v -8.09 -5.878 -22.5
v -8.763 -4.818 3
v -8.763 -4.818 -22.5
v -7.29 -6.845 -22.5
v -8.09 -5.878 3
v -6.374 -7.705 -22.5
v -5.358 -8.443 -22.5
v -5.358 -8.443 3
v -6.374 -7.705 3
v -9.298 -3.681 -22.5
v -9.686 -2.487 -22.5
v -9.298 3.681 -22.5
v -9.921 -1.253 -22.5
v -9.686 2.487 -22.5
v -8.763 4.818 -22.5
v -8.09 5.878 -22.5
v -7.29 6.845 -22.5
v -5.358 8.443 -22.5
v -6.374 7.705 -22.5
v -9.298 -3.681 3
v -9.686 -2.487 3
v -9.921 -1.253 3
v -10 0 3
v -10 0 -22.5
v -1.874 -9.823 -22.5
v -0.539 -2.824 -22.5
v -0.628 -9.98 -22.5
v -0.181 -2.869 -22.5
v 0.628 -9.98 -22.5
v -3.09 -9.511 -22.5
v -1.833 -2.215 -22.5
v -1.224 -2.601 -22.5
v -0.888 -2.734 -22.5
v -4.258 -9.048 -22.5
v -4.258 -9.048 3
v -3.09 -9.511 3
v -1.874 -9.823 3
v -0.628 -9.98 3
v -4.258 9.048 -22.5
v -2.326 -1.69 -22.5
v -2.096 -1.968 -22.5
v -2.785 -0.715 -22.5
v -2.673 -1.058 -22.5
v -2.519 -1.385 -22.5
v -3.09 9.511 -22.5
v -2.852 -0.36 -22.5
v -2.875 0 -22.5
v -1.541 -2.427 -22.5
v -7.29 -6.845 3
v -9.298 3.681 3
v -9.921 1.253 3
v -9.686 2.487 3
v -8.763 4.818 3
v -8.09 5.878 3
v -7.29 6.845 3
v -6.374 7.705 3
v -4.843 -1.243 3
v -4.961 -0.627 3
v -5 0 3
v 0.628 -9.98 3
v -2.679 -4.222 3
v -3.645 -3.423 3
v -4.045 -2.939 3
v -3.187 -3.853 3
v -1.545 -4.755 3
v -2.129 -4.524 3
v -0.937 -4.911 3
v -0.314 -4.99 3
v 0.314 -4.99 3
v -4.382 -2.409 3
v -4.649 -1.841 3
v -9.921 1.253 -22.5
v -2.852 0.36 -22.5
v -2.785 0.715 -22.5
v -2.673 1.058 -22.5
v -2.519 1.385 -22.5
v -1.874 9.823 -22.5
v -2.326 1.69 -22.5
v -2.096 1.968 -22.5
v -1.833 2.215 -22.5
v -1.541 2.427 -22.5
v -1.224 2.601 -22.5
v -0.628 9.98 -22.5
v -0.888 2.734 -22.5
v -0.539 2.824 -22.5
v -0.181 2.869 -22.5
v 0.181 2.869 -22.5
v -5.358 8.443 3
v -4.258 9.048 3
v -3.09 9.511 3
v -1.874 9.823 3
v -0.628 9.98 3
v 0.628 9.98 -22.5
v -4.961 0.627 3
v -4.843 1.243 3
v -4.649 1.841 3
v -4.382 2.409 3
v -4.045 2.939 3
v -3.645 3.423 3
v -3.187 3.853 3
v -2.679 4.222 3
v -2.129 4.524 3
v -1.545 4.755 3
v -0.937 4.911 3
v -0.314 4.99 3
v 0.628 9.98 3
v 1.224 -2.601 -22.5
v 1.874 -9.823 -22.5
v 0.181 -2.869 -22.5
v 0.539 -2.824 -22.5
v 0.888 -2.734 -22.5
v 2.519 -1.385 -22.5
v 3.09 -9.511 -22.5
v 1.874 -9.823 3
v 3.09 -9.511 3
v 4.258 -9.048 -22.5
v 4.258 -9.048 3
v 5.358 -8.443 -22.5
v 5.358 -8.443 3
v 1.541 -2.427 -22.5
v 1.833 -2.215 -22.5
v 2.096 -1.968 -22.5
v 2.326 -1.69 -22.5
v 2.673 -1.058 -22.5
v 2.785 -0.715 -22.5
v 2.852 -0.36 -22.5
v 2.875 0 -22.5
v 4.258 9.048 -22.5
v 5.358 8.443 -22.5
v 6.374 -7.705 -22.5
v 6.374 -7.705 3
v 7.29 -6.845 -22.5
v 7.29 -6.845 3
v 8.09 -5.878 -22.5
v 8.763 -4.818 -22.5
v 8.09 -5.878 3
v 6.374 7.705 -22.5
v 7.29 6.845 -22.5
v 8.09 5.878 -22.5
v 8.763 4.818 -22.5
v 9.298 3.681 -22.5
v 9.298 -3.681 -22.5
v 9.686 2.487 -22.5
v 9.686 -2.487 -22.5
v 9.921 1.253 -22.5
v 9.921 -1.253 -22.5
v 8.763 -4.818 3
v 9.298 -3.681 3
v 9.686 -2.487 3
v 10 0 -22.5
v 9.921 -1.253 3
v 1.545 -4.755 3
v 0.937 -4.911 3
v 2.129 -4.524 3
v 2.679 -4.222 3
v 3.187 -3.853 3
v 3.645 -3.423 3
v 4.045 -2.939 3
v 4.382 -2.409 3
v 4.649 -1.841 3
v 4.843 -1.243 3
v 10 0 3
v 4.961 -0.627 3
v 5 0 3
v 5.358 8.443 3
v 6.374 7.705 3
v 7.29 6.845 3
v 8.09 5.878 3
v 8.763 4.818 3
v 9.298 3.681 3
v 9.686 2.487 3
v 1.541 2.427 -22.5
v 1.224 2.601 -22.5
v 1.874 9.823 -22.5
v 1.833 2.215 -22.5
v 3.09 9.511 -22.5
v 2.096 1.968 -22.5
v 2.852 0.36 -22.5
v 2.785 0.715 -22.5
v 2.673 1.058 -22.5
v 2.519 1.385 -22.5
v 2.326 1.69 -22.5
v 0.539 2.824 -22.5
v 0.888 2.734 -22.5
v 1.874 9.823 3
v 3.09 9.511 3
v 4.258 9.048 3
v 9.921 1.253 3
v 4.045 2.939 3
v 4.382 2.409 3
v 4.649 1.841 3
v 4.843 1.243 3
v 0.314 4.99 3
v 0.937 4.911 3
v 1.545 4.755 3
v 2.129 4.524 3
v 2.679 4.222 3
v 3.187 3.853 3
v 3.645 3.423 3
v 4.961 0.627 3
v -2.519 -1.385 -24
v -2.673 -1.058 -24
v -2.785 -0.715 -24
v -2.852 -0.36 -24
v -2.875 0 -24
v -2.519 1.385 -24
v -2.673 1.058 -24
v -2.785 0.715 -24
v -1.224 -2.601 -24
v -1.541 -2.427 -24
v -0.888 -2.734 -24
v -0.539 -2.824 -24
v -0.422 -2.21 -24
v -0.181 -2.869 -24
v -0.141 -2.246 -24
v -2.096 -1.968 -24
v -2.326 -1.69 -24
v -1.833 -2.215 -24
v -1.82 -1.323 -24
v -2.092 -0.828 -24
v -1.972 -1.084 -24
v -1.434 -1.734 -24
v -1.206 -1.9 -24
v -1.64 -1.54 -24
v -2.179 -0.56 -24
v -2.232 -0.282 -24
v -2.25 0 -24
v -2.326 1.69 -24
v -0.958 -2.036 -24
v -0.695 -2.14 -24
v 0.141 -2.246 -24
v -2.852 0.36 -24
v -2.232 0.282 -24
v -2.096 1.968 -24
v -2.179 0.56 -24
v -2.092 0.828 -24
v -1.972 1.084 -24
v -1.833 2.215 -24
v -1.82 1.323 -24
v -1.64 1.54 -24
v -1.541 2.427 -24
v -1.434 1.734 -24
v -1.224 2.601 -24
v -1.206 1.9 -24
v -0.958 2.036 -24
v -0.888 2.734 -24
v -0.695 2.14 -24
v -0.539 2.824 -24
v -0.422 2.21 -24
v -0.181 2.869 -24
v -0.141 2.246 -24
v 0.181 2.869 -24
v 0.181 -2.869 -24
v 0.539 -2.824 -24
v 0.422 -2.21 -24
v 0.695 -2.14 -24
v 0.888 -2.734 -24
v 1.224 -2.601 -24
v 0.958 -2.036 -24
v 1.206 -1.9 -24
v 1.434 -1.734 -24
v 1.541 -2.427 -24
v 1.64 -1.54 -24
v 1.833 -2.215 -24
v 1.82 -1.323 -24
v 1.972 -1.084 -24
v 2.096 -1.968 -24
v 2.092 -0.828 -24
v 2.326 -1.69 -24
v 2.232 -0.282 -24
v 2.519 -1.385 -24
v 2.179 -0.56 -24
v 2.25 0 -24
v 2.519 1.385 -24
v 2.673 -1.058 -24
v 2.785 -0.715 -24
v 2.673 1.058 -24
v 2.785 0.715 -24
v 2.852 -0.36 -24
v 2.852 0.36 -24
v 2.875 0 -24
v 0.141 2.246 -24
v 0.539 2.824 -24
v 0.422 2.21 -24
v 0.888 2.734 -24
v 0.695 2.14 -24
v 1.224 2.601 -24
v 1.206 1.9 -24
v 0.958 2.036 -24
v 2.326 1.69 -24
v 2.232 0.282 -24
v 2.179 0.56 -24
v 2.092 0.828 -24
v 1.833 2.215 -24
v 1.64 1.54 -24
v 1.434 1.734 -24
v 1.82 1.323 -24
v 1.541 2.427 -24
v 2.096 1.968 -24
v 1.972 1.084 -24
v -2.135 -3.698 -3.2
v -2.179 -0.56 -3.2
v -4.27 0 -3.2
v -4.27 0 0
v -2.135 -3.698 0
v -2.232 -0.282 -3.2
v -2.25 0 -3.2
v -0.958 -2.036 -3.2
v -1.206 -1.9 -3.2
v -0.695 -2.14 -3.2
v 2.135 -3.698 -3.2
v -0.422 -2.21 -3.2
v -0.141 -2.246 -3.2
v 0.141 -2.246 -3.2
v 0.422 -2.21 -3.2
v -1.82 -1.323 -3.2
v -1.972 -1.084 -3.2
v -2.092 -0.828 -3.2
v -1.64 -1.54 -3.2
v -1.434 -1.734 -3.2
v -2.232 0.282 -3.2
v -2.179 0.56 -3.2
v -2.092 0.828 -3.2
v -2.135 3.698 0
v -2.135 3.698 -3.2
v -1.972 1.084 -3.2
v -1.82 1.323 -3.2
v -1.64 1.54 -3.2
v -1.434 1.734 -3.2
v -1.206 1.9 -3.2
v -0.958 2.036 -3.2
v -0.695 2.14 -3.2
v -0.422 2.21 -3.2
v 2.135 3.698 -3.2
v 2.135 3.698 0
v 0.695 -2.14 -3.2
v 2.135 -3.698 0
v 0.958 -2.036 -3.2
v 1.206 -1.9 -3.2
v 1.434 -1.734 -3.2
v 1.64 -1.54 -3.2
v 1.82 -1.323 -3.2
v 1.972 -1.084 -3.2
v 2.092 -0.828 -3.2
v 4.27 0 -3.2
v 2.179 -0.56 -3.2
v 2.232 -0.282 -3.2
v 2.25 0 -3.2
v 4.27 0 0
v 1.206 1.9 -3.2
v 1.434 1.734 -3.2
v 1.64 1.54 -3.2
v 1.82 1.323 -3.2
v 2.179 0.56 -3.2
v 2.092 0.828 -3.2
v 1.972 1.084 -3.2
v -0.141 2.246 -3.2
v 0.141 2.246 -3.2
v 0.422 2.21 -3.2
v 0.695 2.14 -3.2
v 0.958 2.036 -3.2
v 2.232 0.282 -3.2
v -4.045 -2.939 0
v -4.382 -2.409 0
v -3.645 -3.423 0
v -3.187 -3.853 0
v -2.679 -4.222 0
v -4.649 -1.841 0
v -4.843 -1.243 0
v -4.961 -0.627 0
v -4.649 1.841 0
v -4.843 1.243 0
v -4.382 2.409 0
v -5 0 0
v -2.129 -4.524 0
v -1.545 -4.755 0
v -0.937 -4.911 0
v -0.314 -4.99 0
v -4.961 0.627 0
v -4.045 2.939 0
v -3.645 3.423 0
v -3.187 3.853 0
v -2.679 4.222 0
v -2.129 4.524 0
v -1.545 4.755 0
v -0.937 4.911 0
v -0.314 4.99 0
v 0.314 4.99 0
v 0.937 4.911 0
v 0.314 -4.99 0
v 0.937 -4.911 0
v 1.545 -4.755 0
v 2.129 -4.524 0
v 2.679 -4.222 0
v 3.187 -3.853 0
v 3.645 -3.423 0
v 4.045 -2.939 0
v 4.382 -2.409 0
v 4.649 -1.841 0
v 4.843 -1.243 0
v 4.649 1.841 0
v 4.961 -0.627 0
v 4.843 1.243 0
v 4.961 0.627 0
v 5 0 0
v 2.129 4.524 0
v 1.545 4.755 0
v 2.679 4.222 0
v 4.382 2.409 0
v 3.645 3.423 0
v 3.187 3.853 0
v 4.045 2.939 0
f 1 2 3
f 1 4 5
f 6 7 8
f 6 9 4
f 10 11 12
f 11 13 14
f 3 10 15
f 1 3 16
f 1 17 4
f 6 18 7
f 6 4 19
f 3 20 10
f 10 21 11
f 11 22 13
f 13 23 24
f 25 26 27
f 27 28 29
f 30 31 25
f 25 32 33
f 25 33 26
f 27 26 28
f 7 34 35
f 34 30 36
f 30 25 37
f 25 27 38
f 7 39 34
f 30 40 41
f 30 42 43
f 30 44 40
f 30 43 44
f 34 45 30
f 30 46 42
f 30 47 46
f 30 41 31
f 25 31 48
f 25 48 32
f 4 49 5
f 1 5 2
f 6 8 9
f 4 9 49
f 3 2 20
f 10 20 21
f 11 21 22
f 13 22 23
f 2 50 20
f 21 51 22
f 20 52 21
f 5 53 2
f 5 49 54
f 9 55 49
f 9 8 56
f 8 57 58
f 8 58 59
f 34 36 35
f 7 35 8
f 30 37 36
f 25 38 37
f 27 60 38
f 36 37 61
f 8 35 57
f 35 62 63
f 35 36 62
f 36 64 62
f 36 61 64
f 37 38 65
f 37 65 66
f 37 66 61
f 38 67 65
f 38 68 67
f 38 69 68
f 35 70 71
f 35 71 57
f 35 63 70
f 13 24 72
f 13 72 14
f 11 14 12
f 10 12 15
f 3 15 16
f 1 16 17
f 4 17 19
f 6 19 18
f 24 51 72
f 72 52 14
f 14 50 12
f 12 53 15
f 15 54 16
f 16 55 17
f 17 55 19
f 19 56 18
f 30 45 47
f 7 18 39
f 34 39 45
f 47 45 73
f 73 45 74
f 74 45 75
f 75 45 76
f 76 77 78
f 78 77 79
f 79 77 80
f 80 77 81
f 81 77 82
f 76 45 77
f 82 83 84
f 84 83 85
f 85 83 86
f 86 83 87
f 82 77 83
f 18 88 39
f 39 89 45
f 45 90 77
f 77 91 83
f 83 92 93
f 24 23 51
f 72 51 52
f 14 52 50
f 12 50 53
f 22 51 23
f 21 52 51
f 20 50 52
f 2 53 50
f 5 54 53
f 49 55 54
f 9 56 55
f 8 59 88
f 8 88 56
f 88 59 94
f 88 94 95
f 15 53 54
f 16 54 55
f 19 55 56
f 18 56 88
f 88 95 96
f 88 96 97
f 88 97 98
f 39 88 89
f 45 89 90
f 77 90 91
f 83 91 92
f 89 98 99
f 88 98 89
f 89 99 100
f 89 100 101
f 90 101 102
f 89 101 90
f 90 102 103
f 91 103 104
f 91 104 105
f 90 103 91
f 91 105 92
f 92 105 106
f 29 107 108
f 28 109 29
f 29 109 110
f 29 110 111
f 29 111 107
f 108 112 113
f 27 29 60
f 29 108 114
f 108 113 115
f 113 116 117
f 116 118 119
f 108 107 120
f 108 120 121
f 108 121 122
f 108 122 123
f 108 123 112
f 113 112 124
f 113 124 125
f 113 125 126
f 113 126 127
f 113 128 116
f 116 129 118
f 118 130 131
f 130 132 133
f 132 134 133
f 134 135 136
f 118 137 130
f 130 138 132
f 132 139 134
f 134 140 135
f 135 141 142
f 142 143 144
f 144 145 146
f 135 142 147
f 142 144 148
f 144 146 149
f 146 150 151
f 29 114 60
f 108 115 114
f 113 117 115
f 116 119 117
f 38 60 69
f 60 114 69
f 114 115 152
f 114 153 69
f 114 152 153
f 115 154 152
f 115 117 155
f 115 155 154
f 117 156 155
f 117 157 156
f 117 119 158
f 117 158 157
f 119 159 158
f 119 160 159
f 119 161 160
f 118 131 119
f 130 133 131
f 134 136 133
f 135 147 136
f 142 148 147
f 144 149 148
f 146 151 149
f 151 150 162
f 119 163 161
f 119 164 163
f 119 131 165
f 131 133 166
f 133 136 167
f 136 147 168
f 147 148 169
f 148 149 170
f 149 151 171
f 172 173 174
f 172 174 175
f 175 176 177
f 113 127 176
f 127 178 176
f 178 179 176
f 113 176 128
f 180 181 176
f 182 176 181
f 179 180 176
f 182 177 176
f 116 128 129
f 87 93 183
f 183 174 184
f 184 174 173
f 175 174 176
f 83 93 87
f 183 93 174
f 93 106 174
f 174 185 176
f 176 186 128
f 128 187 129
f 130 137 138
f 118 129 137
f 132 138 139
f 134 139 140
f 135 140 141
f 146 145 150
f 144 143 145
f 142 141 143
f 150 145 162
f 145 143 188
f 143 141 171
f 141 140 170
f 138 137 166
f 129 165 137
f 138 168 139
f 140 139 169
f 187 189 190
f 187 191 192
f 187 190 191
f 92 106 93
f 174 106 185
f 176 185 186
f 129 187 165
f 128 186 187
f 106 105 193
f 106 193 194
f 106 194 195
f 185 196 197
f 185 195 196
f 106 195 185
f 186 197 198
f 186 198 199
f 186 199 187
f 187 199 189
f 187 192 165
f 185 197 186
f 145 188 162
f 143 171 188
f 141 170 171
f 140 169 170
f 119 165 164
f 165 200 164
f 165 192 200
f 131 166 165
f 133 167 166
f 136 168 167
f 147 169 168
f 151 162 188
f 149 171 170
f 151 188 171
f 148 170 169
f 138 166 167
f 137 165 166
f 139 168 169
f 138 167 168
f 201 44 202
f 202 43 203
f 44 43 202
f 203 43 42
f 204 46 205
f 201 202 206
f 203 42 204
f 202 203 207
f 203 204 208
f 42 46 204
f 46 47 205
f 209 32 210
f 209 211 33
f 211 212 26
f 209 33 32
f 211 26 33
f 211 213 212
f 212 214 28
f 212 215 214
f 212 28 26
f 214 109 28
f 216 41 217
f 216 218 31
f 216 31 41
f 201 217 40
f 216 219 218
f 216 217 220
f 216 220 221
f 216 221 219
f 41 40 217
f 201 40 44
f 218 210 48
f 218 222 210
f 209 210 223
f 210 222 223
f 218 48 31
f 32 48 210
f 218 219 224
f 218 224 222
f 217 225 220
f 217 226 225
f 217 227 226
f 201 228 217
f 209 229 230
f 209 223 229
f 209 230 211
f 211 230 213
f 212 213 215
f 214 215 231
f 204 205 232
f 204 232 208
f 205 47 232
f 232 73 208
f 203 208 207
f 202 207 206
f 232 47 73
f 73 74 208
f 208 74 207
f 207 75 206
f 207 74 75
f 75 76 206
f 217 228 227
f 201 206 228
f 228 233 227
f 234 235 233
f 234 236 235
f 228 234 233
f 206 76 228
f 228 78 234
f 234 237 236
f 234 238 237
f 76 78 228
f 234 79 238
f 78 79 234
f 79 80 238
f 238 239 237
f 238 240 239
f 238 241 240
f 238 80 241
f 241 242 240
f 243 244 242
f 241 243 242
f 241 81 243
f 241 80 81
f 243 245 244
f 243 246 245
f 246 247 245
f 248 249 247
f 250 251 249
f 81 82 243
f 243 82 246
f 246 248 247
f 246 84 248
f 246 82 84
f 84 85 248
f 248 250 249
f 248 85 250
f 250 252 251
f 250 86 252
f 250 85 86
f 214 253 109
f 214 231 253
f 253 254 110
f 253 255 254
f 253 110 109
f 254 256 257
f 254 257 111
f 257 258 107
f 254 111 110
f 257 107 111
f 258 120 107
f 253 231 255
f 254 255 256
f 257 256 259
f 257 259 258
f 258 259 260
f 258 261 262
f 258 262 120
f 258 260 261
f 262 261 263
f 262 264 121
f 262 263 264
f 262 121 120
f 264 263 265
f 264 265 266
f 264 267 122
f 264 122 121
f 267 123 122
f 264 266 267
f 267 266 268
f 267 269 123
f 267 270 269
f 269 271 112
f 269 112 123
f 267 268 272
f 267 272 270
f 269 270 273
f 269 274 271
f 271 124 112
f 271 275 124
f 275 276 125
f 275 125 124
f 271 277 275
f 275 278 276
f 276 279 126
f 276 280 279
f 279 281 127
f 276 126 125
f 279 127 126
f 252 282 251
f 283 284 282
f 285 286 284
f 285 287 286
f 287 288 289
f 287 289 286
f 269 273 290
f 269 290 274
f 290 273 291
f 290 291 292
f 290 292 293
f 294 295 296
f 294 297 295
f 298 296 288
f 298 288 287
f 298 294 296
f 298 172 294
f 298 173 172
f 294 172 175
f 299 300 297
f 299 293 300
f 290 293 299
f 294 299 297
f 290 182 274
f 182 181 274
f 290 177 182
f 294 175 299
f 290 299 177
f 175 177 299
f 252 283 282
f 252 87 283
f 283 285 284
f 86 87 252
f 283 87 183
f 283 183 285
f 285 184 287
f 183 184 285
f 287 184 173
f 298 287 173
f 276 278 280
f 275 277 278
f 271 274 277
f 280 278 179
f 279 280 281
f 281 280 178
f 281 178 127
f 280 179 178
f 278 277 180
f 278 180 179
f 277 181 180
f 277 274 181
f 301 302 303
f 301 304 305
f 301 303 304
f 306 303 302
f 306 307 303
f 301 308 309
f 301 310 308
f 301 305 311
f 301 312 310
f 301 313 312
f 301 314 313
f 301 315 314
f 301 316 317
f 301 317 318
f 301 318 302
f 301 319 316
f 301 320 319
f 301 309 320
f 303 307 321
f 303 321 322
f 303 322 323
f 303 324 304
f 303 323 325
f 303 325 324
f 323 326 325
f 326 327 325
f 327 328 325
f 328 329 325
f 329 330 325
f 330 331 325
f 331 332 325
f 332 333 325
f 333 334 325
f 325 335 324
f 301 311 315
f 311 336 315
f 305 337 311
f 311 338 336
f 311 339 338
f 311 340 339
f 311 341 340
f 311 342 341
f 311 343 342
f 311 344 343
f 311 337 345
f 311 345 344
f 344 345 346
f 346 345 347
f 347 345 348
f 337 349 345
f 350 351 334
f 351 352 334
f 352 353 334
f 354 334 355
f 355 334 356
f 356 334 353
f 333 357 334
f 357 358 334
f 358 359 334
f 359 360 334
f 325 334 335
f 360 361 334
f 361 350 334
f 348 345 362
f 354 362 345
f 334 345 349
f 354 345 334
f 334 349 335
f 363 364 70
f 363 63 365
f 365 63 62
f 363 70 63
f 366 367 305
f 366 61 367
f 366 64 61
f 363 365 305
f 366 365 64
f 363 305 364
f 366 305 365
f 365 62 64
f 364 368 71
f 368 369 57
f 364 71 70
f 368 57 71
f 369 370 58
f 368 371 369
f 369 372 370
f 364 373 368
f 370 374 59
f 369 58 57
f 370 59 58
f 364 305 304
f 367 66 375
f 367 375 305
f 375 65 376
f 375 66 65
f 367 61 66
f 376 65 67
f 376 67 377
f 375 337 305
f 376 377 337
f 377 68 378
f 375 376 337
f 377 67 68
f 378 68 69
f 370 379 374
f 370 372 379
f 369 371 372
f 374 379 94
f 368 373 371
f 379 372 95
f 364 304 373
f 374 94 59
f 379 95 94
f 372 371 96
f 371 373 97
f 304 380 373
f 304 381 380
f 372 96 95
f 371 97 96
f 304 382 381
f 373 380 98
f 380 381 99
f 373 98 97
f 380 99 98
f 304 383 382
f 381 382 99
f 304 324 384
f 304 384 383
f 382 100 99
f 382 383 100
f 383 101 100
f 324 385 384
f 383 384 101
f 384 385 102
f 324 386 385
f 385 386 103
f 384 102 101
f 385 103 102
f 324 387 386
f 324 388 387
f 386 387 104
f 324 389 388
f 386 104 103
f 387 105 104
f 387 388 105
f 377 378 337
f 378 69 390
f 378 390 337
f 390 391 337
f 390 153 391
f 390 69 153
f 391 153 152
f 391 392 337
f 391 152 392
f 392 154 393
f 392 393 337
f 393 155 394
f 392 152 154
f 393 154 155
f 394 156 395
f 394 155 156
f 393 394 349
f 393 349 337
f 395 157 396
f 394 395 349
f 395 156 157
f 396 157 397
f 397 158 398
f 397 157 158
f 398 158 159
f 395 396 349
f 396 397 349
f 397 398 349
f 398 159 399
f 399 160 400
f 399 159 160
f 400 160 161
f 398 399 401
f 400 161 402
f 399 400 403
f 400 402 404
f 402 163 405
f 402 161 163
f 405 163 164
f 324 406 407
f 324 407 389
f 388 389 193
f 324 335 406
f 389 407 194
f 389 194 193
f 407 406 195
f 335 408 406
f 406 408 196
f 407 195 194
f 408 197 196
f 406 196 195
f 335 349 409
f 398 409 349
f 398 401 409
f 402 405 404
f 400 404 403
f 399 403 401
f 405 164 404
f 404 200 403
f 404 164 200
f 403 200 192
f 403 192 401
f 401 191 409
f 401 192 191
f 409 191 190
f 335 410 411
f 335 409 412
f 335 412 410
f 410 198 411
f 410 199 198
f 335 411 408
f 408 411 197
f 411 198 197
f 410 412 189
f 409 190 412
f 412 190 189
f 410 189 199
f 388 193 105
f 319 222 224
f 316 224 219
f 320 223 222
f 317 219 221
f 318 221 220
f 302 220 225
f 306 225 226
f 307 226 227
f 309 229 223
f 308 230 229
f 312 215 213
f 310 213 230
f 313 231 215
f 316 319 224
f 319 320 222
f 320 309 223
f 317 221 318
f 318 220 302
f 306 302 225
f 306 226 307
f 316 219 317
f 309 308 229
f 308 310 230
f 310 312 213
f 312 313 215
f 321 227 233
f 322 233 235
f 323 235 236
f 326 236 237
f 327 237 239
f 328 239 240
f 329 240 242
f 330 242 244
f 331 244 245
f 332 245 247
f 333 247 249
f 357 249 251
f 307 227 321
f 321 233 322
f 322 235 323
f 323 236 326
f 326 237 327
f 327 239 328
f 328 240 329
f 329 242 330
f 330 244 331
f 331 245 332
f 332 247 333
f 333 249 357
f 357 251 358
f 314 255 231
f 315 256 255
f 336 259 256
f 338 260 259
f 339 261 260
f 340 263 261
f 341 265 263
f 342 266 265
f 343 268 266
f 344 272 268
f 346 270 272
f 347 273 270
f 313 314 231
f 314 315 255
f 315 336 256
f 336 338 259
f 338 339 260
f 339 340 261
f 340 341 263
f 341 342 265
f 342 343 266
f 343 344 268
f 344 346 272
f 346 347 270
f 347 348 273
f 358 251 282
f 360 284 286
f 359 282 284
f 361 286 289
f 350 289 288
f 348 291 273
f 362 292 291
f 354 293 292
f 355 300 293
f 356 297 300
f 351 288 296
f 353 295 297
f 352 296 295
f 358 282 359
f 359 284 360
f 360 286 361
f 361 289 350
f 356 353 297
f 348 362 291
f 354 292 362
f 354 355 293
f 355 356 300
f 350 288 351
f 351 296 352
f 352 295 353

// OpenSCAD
$fn = 50;

difference() {
	union() {
		translate(v = [0, 0, -22.5]) {
			cylinder(h = 25.5, r = 10.0);
		}
		#translate(v = [0, 0, -24.0]) {
			cylinder(h = 24, r = 2.875);
		}
	}
	union() {
		translate(v = [0, 0, 0]) {
			rotate(a = [0, 0, 0]) {
				difference() {
					union() {
						translate(v = [0, 0, -3.2]) {
							linear_extrude(height = 3.2) {
								polygon(points = [[4.2698, 0.0], [2.1349000000000005, 3.697755269078796], [-2.134899999999999, 3.6977552690787965], [-4.2698, 5.228996902999369e-16], [-2.134900000000002, -3.6977552690787956], [2.1348999999999974, -3.697755269078798]]);
							}
						}
					}
					union();
				}
			}
		}
		#cylinder(h = 3, r = 5.0);
		#translate(v = [0, 0, -100.0]) {
			cylinder(h = 200, r = 2.25);
		}
	}
}
